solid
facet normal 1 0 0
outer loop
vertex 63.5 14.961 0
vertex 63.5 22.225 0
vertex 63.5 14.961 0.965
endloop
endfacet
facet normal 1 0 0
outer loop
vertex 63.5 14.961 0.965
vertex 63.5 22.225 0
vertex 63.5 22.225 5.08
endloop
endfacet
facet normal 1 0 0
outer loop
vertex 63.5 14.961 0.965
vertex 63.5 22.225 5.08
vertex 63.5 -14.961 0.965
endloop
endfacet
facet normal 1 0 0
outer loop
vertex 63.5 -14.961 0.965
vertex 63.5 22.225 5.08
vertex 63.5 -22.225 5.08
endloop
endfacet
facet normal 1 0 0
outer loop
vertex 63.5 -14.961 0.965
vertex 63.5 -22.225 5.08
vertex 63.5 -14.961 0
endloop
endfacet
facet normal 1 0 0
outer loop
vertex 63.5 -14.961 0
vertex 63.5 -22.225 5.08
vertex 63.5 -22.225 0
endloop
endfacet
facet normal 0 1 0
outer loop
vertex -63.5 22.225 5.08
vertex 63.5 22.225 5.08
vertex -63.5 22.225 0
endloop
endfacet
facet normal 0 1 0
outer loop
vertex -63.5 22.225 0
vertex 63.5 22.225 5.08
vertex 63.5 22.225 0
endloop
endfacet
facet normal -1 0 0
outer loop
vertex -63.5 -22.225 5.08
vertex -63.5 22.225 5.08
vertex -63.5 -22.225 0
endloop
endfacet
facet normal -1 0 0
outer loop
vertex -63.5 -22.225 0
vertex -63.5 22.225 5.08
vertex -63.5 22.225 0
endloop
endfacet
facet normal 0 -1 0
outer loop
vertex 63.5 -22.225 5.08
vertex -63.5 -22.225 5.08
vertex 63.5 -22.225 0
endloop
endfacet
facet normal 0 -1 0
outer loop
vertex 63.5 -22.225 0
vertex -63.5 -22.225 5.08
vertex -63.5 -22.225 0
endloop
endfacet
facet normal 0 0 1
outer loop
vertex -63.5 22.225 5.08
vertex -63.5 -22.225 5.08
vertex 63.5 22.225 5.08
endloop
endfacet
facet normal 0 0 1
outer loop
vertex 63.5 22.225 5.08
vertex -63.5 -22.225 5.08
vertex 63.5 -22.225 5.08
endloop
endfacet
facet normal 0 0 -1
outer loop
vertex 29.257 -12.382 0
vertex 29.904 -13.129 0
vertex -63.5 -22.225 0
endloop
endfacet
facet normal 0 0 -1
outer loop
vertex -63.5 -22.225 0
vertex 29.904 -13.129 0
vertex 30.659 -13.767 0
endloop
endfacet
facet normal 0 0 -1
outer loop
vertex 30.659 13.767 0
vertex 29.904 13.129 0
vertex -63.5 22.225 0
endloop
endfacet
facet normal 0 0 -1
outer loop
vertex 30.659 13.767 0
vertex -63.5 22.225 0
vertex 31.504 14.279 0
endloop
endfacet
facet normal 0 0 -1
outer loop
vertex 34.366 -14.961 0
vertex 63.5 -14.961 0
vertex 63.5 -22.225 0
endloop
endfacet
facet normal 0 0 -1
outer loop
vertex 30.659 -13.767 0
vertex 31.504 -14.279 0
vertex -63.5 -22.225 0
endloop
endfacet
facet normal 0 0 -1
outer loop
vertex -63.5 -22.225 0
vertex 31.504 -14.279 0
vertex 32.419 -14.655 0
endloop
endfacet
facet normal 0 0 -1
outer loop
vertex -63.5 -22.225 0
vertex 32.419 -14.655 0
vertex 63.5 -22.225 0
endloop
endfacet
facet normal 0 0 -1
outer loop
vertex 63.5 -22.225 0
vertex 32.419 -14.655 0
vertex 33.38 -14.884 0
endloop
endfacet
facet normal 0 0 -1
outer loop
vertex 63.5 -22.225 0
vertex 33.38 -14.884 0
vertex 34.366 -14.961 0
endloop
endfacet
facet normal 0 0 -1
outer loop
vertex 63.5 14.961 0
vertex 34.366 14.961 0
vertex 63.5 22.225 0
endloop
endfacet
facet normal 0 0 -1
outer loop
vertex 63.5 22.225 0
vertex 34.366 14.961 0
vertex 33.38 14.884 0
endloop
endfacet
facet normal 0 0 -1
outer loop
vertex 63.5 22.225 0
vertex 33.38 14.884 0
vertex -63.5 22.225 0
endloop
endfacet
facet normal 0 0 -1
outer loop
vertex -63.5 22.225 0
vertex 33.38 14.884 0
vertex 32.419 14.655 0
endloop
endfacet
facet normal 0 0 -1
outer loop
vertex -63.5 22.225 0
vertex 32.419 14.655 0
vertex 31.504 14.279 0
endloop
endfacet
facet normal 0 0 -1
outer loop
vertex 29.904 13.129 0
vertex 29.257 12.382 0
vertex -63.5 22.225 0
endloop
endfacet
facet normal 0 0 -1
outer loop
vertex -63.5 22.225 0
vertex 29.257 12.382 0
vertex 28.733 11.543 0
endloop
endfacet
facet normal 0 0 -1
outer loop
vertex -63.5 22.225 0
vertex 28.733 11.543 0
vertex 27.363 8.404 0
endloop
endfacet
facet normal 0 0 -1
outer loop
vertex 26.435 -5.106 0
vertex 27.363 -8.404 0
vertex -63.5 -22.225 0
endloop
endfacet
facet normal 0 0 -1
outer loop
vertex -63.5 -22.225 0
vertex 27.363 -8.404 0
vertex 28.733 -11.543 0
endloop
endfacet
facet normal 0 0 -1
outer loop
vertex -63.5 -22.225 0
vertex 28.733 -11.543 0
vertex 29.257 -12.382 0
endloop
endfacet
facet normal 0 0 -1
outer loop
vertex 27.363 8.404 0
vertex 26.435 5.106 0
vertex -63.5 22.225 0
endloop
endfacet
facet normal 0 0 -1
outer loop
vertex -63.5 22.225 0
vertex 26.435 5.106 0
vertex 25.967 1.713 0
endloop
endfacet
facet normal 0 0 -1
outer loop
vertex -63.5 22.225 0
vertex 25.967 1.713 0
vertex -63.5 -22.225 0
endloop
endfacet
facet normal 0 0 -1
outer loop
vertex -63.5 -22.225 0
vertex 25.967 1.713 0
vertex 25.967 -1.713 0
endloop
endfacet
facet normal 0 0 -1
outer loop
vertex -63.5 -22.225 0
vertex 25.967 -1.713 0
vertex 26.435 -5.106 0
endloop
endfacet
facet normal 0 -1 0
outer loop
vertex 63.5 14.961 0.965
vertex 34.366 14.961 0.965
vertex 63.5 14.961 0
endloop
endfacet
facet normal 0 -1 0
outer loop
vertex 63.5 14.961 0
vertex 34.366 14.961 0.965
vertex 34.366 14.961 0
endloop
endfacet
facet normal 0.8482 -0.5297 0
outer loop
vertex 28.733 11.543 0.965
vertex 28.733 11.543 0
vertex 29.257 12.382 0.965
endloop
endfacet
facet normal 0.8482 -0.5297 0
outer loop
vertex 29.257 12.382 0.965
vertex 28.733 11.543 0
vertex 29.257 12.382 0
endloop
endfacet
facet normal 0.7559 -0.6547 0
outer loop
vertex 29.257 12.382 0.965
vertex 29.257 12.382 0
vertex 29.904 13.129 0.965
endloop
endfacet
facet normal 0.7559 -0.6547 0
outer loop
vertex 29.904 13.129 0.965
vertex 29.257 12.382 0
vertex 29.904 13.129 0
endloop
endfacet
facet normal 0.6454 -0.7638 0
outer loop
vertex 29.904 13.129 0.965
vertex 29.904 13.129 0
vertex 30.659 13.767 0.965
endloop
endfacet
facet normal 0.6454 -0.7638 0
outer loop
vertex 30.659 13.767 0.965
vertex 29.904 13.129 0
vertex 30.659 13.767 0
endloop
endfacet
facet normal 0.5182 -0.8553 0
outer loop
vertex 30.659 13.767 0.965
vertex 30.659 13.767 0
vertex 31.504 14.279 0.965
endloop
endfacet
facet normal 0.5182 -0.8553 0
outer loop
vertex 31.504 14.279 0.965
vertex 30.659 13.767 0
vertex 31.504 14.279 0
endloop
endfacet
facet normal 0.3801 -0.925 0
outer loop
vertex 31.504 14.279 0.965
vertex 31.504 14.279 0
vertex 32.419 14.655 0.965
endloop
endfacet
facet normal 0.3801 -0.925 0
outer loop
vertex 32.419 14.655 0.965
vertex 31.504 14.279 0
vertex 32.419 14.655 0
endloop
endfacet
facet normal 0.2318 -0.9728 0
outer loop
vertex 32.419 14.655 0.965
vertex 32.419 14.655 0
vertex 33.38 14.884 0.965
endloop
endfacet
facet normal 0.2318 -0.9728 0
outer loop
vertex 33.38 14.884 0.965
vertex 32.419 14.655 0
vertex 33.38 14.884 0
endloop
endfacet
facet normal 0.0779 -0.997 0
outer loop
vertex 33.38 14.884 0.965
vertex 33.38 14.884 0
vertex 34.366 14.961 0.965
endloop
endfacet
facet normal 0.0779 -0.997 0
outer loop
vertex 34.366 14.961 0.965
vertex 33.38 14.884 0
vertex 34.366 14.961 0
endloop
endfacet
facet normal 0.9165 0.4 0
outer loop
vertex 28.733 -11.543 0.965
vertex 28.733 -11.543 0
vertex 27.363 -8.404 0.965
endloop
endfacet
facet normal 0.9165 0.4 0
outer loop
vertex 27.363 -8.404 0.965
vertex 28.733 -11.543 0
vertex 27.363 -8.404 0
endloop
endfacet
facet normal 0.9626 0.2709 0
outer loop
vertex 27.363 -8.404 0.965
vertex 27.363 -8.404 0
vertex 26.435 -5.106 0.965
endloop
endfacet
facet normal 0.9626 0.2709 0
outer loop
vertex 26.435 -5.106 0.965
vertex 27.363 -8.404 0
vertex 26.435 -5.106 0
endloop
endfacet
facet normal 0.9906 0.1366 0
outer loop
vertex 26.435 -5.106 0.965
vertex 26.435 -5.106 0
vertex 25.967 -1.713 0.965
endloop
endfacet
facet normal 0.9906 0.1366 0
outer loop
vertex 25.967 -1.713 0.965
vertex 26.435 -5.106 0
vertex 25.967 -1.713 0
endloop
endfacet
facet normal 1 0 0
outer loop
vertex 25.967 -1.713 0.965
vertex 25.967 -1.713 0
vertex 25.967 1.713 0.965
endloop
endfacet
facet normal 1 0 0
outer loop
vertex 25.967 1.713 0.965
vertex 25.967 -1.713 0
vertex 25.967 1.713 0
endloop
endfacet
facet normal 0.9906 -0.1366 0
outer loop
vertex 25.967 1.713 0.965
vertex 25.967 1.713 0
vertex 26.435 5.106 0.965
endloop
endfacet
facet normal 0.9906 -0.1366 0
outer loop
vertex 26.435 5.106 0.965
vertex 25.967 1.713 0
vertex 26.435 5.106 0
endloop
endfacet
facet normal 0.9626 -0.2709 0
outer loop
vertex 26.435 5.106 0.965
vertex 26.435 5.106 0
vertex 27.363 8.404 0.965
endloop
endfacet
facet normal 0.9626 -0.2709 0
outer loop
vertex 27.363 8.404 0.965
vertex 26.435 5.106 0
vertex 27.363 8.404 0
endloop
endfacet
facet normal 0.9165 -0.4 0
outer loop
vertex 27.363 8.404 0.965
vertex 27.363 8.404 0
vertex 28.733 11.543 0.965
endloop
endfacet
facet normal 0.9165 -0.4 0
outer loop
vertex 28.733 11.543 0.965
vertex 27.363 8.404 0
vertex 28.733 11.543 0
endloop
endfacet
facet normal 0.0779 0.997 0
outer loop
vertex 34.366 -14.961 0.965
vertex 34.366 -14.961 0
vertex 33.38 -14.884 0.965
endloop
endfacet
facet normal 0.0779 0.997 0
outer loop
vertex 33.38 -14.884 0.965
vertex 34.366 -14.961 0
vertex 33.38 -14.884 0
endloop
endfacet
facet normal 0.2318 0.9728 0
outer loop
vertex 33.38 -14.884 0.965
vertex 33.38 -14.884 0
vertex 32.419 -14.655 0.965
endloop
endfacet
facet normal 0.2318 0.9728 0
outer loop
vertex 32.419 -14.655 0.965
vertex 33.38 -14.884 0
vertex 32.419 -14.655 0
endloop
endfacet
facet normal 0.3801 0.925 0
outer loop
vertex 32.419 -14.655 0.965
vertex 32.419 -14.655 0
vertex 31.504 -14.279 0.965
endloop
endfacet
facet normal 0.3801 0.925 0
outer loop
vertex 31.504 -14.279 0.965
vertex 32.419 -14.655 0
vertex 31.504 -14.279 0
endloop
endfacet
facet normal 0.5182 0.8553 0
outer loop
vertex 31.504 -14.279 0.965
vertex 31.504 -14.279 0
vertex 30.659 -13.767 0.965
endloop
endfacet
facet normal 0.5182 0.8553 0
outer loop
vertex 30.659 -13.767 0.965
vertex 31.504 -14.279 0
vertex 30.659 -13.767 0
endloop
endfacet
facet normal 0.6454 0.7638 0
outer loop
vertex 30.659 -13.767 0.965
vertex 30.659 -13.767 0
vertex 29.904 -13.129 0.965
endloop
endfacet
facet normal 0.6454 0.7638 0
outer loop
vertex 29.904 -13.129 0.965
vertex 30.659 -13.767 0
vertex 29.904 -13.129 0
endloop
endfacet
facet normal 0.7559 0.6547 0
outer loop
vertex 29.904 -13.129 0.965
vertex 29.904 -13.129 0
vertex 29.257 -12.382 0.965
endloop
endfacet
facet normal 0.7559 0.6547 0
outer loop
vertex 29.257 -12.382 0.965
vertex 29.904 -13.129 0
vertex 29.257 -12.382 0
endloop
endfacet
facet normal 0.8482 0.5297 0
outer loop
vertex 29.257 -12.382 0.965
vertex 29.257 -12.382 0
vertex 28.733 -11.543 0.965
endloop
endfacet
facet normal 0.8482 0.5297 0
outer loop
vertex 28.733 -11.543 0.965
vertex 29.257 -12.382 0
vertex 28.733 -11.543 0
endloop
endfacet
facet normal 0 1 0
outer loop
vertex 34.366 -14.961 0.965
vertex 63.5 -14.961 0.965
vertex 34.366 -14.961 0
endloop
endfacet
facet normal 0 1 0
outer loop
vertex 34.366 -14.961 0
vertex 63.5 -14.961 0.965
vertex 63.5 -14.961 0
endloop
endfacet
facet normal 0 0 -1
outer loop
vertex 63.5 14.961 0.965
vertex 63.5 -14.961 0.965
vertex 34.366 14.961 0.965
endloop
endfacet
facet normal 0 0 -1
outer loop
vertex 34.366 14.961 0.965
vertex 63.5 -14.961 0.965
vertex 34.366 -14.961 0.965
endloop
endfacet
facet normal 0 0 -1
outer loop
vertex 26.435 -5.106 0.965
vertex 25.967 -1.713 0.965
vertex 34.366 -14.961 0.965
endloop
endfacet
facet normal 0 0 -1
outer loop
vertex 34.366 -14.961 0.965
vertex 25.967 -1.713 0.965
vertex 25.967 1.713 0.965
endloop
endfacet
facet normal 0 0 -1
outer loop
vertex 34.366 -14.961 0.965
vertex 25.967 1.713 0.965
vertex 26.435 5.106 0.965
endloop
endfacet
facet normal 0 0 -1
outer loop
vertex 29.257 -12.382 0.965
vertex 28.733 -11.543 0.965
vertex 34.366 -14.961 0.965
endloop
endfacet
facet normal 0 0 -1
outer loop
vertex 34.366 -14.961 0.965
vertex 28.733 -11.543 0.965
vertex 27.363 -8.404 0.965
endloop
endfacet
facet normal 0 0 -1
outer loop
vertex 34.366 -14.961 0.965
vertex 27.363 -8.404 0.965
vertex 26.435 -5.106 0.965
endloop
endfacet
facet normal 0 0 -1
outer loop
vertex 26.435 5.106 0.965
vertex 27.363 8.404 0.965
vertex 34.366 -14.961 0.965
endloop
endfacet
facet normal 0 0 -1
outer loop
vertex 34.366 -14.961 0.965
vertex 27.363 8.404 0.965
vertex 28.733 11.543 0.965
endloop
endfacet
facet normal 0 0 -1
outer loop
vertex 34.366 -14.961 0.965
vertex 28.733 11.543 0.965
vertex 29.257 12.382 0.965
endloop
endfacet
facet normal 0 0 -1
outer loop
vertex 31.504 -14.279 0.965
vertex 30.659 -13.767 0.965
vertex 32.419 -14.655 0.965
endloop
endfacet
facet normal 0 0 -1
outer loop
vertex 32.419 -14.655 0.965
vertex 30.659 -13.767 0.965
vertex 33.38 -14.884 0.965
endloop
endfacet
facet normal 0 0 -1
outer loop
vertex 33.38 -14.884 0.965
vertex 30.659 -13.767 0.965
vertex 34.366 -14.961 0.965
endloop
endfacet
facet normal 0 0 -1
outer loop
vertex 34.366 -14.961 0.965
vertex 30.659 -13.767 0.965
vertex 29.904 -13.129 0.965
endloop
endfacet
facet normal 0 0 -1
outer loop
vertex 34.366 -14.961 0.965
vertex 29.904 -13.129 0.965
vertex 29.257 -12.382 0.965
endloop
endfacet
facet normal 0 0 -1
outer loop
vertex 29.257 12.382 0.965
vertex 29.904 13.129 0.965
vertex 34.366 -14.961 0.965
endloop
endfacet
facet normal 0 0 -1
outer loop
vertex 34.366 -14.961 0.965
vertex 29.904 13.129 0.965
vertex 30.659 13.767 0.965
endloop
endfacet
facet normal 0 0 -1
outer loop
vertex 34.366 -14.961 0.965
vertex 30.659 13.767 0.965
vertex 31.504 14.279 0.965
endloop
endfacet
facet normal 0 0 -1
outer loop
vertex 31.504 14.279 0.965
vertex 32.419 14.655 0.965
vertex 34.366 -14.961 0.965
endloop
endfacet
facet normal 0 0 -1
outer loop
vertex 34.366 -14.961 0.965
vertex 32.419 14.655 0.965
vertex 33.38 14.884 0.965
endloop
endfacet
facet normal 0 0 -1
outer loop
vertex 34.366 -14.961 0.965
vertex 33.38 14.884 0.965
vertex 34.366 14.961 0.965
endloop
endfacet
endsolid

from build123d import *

# Parameters (mm, degrees)
SKETCH1_W           = 127
SKETCH1_H           = 44.45
BOSS_EXTRUDE1_DEPTH = 5.08
CUT_EXTRUDE1_DEPTH  = 0.9652


with BuildPart() as part:
    # Sketch1 → Boss-Extrude1 (new body)
    with BuildSketch(Plane.XY):
        Rectangle(SKETCH1_W, SKETCH1_H)
    extrude(amount=BOSS_EXTRUDE1_DEPTH)

    # Sketch3 → Cut-Extrude1 (cut)
    with BuildSketch(Plane(origin=(0, 0, 0), x_dir=(-1, 0, 0), z_dir=(0, 0, -1))):
        with BuildLine():
            Line((-63.5, 14.9606), (-34.365536726, 14.9606))
            ThreePointArc((-34.365536726, 14.9606), (-31.071645561, 14.039483955), (-28.733362586, 11.543365668))
            ThreePointArc((-28.733362586, 11.543365668), (-25.908, 0), (-28.733362586, -11.543365668))
            ThreePointArc((-28.733362586, -11.543365668), (-31.071645561, -14.039483955), (-34.365536726, -14.9606))
            Line((-34.365536726, -14.9606), (-63.5, -14.9606))
            Line((-63.5, -14.9606), (-63.5, 14.9606))
        make_face()
    extrude(amount=-CUT_EXTRUDE1_DEPTH, mode=Mode.SUBTRACT)


solid = part.part
